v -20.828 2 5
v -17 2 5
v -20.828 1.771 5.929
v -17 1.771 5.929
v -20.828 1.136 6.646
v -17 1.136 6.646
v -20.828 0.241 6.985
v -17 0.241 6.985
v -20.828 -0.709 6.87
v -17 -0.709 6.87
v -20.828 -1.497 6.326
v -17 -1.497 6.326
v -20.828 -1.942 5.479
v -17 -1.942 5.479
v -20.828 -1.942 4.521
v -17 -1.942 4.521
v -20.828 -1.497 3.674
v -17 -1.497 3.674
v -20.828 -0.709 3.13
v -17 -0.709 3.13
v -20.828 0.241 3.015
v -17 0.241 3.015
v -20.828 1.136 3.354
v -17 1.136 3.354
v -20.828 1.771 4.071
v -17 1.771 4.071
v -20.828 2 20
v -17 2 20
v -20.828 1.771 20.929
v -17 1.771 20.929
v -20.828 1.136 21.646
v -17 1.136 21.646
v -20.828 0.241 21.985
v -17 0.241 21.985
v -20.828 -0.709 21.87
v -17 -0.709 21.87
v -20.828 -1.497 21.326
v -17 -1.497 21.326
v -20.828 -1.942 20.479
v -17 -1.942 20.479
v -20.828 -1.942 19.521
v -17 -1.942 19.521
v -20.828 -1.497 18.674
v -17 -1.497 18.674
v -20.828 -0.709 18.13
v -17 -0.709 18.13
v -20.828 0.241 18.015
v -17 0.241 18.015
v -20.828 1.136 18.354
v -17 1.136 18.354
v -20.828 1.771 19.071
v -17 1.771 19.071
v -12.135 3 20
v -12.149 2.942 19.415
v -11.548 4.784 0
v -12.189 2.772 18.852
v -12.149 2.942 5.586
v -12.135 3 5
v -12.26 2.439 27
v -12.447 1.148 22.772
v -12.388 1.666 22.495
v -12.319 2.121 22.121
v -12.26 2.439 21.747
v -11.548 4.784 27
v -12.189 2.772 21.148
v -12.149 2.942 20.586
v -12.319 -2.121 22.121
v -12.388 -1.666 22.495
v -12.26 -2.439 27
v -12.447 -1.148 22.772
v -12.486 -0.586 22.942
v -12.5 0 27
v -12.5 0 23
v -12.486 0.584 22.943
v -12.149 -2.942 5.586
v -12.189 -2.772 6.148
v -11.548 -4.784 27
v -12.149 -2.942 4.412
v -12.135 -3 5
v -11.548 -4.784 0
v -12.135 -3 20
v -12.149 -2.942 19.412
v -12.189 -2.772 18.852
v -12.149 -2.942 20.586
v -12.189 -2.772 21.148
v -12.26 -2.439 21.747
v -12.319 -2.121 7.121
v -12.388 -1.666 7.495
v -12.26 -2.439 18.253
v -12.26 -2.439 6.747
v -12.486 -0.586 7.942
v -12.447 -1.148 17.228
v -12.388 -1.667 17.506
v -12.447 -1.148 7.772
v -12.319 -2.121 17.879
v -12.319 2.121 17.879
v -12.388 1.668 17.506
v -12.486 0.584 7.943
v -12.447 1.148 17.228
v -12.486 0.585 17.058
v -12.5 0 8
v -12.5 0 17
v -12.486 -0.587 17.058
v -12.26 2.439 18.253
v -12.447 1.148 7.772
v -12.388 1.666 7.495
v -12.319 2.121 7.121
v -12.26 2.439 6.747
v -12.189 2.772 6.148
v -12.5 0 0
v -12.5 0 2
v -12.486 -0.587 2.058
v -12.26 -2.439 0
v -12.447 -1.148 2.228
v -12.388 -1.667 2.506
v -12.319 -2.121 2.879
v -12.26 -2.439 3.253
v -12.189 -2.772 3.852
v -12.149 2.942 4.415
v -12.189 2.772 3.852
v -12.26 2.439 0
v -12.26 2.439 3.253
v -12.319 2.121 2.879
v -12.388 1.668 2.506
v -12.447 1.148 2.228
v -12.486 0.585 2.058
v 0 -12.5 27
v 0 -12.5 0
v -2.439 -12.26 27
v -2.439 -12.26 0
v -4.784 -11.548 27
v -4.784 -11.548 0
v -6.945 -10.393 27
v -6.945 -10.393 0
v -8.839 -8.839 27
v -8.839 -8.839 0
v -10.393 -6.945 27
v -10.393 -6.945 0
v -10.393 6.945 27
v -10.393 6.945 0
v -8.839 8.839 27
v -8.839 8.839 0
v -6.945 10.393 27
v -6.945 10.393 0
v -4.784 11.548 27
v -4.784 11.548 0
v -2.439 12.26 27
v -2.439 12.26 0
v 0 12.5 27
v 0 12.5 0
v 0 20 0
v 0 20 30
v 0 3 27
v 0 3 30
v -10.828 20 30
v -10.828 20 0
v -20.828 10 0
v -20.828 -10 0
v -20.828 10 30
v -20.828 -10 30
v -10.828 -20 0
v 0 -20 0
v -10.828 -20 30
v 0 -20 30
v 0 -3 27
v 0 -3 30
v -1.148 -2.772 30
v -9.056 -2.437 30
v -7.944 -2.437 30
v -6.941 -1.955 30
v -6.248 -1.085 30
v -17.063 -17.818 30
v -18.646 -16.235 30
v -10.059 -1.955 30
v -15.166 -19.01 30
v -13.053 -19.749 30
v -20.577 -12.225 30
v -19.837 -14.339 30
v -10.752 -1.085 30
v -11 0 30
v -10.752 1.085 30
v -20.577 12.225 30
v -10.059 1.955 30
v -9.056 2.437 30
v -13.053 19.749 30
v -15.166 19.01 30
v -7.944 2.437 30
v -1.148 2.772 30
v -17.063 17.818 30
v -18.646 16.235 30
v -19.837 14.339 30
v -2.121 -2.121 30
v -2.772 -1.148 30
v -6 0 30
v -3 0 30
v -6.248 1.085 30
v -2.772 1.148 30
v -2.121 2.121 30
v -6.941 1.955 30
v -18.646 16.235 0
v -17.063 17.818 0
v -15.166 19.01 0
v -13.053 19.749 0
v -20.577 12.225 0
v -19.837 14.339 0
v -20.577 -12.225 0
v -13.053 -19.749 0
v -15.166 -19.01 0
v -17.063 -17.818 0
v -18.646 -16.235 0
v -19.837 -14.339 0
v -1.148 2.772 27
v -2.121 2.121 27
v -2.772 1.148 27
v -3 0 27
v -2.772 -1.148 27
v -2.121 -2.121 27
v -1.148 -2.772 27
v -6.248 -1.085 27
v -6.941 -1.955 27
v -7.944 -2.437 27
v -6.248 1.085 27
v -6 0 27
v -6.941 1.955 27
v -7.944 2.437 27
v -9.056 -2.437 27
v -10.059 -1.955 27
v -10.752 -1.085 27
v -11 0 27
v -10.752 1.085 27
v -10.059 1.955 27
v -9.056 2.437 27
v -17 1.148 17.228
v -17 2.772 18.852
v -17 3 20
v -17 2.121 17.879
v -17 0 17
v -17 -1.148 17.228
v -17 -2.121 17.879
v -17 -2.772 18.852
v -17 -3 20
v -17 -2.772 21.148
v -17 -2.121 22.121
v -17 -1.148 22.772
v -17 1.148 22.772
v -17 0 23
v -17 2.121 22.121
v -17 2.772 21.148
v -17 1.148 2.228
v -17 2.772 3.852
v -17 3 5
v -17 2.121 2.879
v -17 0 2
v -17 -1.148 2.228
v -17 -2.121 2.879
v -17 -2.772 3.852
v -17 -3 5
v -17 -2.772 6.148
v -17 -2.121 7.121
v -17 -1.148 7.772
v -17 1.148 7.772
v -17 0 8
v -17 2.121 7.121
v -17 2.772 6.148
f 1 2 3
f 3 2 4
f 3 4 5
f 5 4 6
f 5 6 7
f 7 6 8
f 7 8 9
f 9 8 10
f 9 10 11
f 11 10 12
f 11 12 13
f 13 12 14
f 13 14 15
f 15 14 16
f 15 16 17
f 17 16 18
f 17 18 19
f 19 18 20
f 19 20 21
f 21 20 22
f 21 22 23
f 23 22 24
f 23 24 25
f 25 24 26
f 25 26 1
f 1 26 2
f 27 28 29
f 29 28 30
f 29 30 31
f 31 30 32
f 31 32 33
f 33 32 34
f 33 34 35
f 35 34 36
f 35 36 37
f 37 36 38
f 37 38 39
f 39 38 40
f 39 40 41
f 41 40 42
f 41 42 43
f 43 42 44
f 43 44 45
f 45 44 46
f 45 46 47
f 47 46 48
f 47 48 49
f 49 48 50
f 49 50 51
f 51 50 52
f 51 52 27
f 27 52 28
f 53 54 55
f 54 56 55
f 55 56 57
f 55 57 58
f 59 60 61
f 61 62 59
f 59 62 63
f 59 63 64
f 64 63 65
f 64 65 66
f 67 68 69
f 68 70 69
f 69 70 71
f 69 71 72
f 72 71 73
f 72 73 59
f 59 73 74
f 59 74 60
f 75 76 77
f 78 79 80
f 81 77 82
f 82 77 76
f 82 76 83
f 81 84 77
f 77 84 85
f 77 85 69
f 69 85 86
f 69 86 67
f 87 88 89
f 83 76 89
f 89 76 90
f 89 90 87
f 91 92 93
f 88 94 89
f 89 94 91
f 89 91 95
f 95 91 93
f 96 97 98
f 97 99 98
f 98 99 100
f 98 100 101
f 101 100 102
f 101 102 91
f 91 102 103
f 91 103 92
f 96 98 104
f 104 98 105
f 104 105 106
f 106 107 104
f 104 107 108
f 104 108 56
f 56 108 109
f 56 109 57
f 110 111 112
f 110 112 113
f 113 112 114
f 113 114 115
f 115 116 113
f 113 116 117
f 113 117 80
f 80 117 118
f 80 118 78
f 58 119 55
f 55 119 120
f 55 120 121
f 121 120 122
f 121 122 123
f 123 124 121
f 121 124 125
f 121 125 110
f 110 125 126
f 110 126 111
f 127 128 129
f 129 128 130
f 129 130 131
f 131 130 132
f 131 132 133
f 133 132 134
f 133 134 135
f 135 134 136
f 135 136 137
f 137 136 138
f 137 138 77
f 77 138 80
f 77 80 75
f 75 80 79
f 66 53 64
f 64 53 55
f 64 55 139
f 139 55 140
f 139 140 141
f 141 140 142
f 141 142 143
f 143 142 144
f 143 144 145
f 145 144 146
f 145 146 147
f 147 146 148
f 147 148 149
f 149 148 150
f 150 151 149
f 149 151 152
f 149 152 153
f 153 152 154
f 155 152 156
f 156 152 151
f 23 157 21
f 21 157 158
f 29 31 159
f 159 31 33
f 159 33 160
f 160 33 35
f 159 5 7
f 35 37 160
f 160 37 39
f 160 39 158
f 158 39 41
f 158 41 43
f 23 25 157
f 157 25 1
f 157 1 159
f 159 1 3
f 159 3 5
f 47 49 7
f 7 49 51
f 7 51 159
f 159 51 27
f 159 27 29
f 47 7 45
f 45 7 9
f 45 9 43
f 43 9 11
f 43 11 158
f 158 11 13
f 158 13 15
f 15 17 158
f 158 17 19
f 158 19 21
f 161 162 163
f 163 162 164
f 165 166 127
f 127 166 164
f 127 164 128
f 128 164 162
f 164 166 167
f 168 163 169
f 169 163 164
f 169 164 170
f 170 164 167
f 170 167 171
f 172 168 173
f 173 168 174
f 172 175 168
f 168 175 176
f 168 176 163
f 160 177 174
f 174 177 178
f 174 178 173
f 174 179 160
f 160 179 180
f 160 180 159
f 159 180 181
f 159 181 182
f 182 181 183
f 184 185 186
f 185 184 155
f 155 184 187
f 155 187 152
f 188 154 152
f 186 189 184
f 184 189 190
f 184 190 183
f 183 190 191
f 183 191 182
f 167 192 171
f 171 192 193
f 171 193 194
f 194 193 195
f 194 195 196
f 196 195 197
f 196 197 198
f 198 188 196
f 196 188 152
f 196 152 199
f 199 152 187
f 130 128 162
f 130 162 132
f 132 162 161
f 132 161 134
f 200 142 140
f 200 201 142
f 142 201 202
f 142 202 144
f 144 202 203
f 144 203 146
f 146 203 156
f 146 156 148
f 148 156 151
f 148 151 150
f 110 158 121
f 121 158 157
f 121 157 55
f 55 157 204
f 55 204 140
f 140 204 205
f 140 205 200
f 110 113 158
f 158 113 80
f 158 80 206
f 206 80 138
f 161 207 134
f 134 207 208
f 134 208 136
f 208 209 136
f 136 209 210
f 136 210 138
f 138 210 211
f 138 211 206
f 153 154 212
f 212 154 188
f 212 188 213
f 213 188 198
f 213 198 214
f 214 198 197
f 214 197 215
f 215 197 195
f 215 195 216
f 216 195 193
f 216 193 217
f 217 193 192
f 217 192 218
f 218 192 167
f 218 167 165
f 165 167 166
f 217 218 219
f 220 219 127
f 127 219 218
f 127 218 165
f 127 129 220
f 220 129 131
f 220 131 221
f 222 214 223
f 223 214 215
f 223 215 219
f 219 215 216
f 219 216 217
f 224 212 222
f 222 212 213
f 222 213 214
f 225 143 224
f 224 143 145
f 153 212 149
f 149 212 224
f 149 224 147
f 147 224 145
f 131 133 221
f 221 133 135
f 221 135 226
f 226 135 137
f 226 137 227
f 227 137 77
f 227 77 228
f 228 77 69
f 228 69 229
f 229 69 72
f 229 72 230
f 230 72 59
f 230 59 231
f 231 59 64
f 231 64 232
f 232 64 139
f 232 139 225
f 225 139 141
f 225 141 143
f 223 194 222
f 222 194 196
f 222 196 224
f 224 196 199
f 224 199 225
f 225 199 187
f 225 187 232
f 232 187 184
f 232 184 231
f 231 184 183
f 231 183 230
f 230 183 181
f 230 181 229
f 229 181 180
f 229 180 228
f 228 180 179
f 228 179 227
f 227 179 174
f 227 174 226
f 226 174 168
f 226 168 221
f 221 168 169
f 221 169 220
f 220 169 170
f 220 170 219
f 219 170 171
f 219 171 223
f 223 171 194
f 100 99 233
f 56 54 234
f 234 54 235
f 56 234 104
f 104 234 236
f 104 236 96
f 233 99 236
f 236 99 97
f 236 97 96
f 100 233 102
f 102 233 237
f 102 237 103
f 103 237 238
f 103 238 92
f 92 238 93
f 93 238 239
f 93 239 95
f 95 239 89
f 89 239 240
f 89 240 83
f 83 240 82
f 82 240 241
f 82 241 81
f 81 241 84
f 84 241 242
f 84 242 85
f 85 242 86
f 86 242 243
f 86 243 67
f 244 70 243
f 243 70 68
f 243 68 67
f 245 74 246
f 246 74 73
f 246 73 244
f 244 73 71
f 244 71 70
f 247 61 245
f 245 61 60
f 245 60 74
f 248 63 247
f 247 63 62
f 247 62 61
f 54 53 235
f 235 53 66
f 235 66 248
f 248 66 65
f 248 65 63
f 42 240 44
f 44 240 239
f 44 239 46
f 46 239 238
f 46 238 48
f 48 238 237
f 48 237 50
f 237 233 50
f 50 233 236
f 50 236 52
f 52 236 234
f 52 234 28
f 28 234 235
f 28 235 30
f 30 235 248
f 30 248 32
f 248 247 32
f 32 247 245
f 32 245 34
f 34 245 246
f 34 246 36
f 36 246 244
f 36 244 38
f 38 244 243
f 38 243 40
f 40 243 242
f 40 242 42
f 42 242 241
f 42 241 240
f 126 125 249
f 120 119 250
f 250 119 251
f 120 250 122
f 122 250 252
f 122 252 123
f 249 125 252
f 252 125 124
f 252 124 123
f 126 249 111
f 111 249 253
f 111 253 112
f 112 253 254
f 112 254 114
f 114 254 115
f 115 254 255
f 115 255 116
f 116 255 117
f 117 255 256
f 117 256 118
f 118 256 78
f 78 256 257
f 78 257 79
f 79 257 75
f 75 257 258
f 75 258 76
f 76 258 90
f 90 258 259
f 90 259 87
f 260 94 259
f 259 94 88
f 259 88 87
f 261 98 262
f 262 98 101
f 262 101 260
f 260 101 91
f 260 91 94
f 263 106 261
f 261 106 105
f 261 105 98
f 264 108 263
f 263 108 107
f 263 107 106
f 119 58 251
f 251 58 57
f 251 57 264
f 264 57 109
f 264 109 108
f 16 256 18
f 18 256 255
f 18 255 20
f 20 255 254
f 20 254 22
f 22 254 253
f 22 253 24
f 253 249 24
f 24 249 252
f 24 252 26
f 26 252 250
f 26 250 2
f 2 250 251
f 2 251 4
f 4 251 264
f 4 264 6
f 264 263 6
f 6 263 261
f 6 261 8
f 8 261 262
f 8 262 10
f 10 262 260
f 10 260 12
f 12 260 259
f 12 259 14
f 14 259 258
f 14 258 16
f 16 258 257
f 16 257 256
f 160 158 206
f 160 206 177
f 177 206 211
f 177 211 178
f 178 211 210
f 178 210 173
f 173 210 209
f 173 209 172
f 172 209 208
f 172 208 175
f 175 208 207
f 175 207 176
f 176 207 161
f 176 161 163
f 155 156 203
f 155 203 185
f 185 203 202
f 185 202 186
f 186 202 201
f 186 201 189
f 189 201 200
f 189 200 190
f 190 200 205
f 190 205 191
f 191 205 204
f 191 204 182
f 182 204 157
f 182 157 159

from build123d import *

# Parameters (mm, degrees)
BOSS_EXTRUDE1_DEPTH = 30
BOSS_EXTRUDE2_START = -3
SKETCH2_R           = 2.5
BOSS_EXTRUDE2_DEPTH = 3
SKETCH3_R           = 2
CUT_EXTRUDE1_DEPTH  = 42.638807138
SKETCH3_4_R         = 3
SKETCH3_4_R_2       = 2
CUT_EXTRUDE7_DEPTH  = 17
FILLET1_R           = 10


with BuildPart() as part:
    # Sketch1 → Boss-Extrude1 (new body)
    with BuildSketch(Plane.XY):
        with BuildLine():
            Line((-20.827632123, 20), (0, 20))
            Line((0, 20), (0, 12.5))
            ThreePointArc((0, 12.5), (-12.5, 0), (0, -12.5))
            Line((0, -12.5), (0, -20))
            Line((0, -20), (-20.827632123, -20))
            Line((-20.827632123, -20), (-20.827632123, 20))
        make_face()
    extrude(amount=BOSS_EXTRUDE1_DEPTH)

    # Sketch2 → Boss-Extrude2 (add)
    with BuildSketch(Plane.XY.offset(30).offset(BOSS_EXTRUDE2_START)):
        with BuildLine():
            Line((0, 12.5), (0, 3))
            ThreePointArc((0, 3), (-3, 0), (0, -3))
            Line((0, -3), (0, -12.5))
            ThreePointArc((0, -12.5), (-12.5, 0), (0, 12.5))
        make_face()
        with Locations((-8.5, 0)):
            Circle(SKETCH2_R, mode=Mode.SUBTRACT)
    extrude(amount=BOSS_EXTRUDE2_DEPTH)

    # Sketch3 → Cut-Extrude1 (cut, through all)
    with BuildSketch(Plane(origin=(0, 0, 0), x_dir=(0, 0, -1), z_dir=(1, 0, 0))):
        with Locations((-5, 0)):
            Circle(SKETCH3_R)
        with Locations((-20, 0)):
            Circle(SKETCH3_R)
    extrude(amount=-CUT_EXTRUDE1_DEPTH, mode=Mode.SUBTRACT)

    # Sketch3<4> → Cut-Extrude7 (cut)
    # profile 1 of 2: a face of its own
    with BuildSketch(Plane(origin=(0, 0, 0), x_dir=(0, 0, -1), z_dir=(1, 0, 0))):
        with Locations((-5, 0)):
            Circle(SKETCH3_4_R)
        with Locations((-5, 0)):
            Circle(SKETCH3_4_R_2, mode=Mode.SUBTRACT)
    # profile 2 of 2: a face of its own
    with BuildSketch(Plane(origin=(0, 0, 0), x_dir=(0, 0, -1), z_dir=(1, 0, 0))):
        with Locations((-20, 0)):
            Circle(SKETCH3_4_R)
        with Locations((-20, 0)):
            Circle(SKETCH3_4_R_2, mode=Mode.SUBTRACT)
    extrude(amount=-CUT_EXTRUDE7_DEPTH, mode=Mode.SUBTRACT)

    # Fillet1
    fillet1_edges = [part.edges().sort_by_distance(p)[0] for p in [
        (-20.827632123, -20, 15),
        (-20.827632123, 20, 15),
    ]]
    fillet(fillet1_edges, radius=FILLET1_R)


solid = part.part
